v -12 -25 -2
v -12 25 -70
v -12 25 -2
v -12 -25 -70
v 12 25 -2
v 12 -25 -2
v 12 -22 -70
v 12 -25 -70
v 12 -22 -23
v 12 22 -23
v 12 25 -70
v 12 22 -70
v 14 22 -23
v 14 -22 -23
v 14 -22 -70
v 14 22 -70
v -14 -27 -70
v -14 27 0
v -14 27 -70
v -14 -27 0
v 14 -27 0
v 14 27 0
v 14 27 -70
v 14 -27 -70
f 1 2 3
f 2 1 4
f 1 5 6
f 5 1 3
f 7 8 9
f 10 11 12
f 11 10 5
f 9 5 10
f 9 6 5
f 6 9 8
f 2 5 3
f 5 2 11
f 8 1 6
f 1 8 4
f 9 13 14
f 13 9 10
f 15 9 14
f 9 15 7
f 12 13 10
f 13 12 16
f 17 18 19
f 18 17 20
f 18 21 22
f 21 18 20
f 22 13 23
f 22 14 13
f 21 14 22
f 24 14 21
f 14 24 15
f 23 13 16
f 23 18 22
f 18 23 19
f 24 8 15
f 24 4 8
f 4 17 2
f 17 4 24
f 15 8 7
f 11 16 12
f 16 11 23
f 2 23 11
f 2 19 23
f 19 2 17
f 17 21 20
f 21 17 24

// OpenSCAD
difference(){
    translate([0,0,-35])
        cube([28,54,70],true);
    union(){
        translate([0,0,-37])
            cube([24,50,70],true);  
        translate([20,0,-58])
            cube([24,44,70],true);  
    }
}
